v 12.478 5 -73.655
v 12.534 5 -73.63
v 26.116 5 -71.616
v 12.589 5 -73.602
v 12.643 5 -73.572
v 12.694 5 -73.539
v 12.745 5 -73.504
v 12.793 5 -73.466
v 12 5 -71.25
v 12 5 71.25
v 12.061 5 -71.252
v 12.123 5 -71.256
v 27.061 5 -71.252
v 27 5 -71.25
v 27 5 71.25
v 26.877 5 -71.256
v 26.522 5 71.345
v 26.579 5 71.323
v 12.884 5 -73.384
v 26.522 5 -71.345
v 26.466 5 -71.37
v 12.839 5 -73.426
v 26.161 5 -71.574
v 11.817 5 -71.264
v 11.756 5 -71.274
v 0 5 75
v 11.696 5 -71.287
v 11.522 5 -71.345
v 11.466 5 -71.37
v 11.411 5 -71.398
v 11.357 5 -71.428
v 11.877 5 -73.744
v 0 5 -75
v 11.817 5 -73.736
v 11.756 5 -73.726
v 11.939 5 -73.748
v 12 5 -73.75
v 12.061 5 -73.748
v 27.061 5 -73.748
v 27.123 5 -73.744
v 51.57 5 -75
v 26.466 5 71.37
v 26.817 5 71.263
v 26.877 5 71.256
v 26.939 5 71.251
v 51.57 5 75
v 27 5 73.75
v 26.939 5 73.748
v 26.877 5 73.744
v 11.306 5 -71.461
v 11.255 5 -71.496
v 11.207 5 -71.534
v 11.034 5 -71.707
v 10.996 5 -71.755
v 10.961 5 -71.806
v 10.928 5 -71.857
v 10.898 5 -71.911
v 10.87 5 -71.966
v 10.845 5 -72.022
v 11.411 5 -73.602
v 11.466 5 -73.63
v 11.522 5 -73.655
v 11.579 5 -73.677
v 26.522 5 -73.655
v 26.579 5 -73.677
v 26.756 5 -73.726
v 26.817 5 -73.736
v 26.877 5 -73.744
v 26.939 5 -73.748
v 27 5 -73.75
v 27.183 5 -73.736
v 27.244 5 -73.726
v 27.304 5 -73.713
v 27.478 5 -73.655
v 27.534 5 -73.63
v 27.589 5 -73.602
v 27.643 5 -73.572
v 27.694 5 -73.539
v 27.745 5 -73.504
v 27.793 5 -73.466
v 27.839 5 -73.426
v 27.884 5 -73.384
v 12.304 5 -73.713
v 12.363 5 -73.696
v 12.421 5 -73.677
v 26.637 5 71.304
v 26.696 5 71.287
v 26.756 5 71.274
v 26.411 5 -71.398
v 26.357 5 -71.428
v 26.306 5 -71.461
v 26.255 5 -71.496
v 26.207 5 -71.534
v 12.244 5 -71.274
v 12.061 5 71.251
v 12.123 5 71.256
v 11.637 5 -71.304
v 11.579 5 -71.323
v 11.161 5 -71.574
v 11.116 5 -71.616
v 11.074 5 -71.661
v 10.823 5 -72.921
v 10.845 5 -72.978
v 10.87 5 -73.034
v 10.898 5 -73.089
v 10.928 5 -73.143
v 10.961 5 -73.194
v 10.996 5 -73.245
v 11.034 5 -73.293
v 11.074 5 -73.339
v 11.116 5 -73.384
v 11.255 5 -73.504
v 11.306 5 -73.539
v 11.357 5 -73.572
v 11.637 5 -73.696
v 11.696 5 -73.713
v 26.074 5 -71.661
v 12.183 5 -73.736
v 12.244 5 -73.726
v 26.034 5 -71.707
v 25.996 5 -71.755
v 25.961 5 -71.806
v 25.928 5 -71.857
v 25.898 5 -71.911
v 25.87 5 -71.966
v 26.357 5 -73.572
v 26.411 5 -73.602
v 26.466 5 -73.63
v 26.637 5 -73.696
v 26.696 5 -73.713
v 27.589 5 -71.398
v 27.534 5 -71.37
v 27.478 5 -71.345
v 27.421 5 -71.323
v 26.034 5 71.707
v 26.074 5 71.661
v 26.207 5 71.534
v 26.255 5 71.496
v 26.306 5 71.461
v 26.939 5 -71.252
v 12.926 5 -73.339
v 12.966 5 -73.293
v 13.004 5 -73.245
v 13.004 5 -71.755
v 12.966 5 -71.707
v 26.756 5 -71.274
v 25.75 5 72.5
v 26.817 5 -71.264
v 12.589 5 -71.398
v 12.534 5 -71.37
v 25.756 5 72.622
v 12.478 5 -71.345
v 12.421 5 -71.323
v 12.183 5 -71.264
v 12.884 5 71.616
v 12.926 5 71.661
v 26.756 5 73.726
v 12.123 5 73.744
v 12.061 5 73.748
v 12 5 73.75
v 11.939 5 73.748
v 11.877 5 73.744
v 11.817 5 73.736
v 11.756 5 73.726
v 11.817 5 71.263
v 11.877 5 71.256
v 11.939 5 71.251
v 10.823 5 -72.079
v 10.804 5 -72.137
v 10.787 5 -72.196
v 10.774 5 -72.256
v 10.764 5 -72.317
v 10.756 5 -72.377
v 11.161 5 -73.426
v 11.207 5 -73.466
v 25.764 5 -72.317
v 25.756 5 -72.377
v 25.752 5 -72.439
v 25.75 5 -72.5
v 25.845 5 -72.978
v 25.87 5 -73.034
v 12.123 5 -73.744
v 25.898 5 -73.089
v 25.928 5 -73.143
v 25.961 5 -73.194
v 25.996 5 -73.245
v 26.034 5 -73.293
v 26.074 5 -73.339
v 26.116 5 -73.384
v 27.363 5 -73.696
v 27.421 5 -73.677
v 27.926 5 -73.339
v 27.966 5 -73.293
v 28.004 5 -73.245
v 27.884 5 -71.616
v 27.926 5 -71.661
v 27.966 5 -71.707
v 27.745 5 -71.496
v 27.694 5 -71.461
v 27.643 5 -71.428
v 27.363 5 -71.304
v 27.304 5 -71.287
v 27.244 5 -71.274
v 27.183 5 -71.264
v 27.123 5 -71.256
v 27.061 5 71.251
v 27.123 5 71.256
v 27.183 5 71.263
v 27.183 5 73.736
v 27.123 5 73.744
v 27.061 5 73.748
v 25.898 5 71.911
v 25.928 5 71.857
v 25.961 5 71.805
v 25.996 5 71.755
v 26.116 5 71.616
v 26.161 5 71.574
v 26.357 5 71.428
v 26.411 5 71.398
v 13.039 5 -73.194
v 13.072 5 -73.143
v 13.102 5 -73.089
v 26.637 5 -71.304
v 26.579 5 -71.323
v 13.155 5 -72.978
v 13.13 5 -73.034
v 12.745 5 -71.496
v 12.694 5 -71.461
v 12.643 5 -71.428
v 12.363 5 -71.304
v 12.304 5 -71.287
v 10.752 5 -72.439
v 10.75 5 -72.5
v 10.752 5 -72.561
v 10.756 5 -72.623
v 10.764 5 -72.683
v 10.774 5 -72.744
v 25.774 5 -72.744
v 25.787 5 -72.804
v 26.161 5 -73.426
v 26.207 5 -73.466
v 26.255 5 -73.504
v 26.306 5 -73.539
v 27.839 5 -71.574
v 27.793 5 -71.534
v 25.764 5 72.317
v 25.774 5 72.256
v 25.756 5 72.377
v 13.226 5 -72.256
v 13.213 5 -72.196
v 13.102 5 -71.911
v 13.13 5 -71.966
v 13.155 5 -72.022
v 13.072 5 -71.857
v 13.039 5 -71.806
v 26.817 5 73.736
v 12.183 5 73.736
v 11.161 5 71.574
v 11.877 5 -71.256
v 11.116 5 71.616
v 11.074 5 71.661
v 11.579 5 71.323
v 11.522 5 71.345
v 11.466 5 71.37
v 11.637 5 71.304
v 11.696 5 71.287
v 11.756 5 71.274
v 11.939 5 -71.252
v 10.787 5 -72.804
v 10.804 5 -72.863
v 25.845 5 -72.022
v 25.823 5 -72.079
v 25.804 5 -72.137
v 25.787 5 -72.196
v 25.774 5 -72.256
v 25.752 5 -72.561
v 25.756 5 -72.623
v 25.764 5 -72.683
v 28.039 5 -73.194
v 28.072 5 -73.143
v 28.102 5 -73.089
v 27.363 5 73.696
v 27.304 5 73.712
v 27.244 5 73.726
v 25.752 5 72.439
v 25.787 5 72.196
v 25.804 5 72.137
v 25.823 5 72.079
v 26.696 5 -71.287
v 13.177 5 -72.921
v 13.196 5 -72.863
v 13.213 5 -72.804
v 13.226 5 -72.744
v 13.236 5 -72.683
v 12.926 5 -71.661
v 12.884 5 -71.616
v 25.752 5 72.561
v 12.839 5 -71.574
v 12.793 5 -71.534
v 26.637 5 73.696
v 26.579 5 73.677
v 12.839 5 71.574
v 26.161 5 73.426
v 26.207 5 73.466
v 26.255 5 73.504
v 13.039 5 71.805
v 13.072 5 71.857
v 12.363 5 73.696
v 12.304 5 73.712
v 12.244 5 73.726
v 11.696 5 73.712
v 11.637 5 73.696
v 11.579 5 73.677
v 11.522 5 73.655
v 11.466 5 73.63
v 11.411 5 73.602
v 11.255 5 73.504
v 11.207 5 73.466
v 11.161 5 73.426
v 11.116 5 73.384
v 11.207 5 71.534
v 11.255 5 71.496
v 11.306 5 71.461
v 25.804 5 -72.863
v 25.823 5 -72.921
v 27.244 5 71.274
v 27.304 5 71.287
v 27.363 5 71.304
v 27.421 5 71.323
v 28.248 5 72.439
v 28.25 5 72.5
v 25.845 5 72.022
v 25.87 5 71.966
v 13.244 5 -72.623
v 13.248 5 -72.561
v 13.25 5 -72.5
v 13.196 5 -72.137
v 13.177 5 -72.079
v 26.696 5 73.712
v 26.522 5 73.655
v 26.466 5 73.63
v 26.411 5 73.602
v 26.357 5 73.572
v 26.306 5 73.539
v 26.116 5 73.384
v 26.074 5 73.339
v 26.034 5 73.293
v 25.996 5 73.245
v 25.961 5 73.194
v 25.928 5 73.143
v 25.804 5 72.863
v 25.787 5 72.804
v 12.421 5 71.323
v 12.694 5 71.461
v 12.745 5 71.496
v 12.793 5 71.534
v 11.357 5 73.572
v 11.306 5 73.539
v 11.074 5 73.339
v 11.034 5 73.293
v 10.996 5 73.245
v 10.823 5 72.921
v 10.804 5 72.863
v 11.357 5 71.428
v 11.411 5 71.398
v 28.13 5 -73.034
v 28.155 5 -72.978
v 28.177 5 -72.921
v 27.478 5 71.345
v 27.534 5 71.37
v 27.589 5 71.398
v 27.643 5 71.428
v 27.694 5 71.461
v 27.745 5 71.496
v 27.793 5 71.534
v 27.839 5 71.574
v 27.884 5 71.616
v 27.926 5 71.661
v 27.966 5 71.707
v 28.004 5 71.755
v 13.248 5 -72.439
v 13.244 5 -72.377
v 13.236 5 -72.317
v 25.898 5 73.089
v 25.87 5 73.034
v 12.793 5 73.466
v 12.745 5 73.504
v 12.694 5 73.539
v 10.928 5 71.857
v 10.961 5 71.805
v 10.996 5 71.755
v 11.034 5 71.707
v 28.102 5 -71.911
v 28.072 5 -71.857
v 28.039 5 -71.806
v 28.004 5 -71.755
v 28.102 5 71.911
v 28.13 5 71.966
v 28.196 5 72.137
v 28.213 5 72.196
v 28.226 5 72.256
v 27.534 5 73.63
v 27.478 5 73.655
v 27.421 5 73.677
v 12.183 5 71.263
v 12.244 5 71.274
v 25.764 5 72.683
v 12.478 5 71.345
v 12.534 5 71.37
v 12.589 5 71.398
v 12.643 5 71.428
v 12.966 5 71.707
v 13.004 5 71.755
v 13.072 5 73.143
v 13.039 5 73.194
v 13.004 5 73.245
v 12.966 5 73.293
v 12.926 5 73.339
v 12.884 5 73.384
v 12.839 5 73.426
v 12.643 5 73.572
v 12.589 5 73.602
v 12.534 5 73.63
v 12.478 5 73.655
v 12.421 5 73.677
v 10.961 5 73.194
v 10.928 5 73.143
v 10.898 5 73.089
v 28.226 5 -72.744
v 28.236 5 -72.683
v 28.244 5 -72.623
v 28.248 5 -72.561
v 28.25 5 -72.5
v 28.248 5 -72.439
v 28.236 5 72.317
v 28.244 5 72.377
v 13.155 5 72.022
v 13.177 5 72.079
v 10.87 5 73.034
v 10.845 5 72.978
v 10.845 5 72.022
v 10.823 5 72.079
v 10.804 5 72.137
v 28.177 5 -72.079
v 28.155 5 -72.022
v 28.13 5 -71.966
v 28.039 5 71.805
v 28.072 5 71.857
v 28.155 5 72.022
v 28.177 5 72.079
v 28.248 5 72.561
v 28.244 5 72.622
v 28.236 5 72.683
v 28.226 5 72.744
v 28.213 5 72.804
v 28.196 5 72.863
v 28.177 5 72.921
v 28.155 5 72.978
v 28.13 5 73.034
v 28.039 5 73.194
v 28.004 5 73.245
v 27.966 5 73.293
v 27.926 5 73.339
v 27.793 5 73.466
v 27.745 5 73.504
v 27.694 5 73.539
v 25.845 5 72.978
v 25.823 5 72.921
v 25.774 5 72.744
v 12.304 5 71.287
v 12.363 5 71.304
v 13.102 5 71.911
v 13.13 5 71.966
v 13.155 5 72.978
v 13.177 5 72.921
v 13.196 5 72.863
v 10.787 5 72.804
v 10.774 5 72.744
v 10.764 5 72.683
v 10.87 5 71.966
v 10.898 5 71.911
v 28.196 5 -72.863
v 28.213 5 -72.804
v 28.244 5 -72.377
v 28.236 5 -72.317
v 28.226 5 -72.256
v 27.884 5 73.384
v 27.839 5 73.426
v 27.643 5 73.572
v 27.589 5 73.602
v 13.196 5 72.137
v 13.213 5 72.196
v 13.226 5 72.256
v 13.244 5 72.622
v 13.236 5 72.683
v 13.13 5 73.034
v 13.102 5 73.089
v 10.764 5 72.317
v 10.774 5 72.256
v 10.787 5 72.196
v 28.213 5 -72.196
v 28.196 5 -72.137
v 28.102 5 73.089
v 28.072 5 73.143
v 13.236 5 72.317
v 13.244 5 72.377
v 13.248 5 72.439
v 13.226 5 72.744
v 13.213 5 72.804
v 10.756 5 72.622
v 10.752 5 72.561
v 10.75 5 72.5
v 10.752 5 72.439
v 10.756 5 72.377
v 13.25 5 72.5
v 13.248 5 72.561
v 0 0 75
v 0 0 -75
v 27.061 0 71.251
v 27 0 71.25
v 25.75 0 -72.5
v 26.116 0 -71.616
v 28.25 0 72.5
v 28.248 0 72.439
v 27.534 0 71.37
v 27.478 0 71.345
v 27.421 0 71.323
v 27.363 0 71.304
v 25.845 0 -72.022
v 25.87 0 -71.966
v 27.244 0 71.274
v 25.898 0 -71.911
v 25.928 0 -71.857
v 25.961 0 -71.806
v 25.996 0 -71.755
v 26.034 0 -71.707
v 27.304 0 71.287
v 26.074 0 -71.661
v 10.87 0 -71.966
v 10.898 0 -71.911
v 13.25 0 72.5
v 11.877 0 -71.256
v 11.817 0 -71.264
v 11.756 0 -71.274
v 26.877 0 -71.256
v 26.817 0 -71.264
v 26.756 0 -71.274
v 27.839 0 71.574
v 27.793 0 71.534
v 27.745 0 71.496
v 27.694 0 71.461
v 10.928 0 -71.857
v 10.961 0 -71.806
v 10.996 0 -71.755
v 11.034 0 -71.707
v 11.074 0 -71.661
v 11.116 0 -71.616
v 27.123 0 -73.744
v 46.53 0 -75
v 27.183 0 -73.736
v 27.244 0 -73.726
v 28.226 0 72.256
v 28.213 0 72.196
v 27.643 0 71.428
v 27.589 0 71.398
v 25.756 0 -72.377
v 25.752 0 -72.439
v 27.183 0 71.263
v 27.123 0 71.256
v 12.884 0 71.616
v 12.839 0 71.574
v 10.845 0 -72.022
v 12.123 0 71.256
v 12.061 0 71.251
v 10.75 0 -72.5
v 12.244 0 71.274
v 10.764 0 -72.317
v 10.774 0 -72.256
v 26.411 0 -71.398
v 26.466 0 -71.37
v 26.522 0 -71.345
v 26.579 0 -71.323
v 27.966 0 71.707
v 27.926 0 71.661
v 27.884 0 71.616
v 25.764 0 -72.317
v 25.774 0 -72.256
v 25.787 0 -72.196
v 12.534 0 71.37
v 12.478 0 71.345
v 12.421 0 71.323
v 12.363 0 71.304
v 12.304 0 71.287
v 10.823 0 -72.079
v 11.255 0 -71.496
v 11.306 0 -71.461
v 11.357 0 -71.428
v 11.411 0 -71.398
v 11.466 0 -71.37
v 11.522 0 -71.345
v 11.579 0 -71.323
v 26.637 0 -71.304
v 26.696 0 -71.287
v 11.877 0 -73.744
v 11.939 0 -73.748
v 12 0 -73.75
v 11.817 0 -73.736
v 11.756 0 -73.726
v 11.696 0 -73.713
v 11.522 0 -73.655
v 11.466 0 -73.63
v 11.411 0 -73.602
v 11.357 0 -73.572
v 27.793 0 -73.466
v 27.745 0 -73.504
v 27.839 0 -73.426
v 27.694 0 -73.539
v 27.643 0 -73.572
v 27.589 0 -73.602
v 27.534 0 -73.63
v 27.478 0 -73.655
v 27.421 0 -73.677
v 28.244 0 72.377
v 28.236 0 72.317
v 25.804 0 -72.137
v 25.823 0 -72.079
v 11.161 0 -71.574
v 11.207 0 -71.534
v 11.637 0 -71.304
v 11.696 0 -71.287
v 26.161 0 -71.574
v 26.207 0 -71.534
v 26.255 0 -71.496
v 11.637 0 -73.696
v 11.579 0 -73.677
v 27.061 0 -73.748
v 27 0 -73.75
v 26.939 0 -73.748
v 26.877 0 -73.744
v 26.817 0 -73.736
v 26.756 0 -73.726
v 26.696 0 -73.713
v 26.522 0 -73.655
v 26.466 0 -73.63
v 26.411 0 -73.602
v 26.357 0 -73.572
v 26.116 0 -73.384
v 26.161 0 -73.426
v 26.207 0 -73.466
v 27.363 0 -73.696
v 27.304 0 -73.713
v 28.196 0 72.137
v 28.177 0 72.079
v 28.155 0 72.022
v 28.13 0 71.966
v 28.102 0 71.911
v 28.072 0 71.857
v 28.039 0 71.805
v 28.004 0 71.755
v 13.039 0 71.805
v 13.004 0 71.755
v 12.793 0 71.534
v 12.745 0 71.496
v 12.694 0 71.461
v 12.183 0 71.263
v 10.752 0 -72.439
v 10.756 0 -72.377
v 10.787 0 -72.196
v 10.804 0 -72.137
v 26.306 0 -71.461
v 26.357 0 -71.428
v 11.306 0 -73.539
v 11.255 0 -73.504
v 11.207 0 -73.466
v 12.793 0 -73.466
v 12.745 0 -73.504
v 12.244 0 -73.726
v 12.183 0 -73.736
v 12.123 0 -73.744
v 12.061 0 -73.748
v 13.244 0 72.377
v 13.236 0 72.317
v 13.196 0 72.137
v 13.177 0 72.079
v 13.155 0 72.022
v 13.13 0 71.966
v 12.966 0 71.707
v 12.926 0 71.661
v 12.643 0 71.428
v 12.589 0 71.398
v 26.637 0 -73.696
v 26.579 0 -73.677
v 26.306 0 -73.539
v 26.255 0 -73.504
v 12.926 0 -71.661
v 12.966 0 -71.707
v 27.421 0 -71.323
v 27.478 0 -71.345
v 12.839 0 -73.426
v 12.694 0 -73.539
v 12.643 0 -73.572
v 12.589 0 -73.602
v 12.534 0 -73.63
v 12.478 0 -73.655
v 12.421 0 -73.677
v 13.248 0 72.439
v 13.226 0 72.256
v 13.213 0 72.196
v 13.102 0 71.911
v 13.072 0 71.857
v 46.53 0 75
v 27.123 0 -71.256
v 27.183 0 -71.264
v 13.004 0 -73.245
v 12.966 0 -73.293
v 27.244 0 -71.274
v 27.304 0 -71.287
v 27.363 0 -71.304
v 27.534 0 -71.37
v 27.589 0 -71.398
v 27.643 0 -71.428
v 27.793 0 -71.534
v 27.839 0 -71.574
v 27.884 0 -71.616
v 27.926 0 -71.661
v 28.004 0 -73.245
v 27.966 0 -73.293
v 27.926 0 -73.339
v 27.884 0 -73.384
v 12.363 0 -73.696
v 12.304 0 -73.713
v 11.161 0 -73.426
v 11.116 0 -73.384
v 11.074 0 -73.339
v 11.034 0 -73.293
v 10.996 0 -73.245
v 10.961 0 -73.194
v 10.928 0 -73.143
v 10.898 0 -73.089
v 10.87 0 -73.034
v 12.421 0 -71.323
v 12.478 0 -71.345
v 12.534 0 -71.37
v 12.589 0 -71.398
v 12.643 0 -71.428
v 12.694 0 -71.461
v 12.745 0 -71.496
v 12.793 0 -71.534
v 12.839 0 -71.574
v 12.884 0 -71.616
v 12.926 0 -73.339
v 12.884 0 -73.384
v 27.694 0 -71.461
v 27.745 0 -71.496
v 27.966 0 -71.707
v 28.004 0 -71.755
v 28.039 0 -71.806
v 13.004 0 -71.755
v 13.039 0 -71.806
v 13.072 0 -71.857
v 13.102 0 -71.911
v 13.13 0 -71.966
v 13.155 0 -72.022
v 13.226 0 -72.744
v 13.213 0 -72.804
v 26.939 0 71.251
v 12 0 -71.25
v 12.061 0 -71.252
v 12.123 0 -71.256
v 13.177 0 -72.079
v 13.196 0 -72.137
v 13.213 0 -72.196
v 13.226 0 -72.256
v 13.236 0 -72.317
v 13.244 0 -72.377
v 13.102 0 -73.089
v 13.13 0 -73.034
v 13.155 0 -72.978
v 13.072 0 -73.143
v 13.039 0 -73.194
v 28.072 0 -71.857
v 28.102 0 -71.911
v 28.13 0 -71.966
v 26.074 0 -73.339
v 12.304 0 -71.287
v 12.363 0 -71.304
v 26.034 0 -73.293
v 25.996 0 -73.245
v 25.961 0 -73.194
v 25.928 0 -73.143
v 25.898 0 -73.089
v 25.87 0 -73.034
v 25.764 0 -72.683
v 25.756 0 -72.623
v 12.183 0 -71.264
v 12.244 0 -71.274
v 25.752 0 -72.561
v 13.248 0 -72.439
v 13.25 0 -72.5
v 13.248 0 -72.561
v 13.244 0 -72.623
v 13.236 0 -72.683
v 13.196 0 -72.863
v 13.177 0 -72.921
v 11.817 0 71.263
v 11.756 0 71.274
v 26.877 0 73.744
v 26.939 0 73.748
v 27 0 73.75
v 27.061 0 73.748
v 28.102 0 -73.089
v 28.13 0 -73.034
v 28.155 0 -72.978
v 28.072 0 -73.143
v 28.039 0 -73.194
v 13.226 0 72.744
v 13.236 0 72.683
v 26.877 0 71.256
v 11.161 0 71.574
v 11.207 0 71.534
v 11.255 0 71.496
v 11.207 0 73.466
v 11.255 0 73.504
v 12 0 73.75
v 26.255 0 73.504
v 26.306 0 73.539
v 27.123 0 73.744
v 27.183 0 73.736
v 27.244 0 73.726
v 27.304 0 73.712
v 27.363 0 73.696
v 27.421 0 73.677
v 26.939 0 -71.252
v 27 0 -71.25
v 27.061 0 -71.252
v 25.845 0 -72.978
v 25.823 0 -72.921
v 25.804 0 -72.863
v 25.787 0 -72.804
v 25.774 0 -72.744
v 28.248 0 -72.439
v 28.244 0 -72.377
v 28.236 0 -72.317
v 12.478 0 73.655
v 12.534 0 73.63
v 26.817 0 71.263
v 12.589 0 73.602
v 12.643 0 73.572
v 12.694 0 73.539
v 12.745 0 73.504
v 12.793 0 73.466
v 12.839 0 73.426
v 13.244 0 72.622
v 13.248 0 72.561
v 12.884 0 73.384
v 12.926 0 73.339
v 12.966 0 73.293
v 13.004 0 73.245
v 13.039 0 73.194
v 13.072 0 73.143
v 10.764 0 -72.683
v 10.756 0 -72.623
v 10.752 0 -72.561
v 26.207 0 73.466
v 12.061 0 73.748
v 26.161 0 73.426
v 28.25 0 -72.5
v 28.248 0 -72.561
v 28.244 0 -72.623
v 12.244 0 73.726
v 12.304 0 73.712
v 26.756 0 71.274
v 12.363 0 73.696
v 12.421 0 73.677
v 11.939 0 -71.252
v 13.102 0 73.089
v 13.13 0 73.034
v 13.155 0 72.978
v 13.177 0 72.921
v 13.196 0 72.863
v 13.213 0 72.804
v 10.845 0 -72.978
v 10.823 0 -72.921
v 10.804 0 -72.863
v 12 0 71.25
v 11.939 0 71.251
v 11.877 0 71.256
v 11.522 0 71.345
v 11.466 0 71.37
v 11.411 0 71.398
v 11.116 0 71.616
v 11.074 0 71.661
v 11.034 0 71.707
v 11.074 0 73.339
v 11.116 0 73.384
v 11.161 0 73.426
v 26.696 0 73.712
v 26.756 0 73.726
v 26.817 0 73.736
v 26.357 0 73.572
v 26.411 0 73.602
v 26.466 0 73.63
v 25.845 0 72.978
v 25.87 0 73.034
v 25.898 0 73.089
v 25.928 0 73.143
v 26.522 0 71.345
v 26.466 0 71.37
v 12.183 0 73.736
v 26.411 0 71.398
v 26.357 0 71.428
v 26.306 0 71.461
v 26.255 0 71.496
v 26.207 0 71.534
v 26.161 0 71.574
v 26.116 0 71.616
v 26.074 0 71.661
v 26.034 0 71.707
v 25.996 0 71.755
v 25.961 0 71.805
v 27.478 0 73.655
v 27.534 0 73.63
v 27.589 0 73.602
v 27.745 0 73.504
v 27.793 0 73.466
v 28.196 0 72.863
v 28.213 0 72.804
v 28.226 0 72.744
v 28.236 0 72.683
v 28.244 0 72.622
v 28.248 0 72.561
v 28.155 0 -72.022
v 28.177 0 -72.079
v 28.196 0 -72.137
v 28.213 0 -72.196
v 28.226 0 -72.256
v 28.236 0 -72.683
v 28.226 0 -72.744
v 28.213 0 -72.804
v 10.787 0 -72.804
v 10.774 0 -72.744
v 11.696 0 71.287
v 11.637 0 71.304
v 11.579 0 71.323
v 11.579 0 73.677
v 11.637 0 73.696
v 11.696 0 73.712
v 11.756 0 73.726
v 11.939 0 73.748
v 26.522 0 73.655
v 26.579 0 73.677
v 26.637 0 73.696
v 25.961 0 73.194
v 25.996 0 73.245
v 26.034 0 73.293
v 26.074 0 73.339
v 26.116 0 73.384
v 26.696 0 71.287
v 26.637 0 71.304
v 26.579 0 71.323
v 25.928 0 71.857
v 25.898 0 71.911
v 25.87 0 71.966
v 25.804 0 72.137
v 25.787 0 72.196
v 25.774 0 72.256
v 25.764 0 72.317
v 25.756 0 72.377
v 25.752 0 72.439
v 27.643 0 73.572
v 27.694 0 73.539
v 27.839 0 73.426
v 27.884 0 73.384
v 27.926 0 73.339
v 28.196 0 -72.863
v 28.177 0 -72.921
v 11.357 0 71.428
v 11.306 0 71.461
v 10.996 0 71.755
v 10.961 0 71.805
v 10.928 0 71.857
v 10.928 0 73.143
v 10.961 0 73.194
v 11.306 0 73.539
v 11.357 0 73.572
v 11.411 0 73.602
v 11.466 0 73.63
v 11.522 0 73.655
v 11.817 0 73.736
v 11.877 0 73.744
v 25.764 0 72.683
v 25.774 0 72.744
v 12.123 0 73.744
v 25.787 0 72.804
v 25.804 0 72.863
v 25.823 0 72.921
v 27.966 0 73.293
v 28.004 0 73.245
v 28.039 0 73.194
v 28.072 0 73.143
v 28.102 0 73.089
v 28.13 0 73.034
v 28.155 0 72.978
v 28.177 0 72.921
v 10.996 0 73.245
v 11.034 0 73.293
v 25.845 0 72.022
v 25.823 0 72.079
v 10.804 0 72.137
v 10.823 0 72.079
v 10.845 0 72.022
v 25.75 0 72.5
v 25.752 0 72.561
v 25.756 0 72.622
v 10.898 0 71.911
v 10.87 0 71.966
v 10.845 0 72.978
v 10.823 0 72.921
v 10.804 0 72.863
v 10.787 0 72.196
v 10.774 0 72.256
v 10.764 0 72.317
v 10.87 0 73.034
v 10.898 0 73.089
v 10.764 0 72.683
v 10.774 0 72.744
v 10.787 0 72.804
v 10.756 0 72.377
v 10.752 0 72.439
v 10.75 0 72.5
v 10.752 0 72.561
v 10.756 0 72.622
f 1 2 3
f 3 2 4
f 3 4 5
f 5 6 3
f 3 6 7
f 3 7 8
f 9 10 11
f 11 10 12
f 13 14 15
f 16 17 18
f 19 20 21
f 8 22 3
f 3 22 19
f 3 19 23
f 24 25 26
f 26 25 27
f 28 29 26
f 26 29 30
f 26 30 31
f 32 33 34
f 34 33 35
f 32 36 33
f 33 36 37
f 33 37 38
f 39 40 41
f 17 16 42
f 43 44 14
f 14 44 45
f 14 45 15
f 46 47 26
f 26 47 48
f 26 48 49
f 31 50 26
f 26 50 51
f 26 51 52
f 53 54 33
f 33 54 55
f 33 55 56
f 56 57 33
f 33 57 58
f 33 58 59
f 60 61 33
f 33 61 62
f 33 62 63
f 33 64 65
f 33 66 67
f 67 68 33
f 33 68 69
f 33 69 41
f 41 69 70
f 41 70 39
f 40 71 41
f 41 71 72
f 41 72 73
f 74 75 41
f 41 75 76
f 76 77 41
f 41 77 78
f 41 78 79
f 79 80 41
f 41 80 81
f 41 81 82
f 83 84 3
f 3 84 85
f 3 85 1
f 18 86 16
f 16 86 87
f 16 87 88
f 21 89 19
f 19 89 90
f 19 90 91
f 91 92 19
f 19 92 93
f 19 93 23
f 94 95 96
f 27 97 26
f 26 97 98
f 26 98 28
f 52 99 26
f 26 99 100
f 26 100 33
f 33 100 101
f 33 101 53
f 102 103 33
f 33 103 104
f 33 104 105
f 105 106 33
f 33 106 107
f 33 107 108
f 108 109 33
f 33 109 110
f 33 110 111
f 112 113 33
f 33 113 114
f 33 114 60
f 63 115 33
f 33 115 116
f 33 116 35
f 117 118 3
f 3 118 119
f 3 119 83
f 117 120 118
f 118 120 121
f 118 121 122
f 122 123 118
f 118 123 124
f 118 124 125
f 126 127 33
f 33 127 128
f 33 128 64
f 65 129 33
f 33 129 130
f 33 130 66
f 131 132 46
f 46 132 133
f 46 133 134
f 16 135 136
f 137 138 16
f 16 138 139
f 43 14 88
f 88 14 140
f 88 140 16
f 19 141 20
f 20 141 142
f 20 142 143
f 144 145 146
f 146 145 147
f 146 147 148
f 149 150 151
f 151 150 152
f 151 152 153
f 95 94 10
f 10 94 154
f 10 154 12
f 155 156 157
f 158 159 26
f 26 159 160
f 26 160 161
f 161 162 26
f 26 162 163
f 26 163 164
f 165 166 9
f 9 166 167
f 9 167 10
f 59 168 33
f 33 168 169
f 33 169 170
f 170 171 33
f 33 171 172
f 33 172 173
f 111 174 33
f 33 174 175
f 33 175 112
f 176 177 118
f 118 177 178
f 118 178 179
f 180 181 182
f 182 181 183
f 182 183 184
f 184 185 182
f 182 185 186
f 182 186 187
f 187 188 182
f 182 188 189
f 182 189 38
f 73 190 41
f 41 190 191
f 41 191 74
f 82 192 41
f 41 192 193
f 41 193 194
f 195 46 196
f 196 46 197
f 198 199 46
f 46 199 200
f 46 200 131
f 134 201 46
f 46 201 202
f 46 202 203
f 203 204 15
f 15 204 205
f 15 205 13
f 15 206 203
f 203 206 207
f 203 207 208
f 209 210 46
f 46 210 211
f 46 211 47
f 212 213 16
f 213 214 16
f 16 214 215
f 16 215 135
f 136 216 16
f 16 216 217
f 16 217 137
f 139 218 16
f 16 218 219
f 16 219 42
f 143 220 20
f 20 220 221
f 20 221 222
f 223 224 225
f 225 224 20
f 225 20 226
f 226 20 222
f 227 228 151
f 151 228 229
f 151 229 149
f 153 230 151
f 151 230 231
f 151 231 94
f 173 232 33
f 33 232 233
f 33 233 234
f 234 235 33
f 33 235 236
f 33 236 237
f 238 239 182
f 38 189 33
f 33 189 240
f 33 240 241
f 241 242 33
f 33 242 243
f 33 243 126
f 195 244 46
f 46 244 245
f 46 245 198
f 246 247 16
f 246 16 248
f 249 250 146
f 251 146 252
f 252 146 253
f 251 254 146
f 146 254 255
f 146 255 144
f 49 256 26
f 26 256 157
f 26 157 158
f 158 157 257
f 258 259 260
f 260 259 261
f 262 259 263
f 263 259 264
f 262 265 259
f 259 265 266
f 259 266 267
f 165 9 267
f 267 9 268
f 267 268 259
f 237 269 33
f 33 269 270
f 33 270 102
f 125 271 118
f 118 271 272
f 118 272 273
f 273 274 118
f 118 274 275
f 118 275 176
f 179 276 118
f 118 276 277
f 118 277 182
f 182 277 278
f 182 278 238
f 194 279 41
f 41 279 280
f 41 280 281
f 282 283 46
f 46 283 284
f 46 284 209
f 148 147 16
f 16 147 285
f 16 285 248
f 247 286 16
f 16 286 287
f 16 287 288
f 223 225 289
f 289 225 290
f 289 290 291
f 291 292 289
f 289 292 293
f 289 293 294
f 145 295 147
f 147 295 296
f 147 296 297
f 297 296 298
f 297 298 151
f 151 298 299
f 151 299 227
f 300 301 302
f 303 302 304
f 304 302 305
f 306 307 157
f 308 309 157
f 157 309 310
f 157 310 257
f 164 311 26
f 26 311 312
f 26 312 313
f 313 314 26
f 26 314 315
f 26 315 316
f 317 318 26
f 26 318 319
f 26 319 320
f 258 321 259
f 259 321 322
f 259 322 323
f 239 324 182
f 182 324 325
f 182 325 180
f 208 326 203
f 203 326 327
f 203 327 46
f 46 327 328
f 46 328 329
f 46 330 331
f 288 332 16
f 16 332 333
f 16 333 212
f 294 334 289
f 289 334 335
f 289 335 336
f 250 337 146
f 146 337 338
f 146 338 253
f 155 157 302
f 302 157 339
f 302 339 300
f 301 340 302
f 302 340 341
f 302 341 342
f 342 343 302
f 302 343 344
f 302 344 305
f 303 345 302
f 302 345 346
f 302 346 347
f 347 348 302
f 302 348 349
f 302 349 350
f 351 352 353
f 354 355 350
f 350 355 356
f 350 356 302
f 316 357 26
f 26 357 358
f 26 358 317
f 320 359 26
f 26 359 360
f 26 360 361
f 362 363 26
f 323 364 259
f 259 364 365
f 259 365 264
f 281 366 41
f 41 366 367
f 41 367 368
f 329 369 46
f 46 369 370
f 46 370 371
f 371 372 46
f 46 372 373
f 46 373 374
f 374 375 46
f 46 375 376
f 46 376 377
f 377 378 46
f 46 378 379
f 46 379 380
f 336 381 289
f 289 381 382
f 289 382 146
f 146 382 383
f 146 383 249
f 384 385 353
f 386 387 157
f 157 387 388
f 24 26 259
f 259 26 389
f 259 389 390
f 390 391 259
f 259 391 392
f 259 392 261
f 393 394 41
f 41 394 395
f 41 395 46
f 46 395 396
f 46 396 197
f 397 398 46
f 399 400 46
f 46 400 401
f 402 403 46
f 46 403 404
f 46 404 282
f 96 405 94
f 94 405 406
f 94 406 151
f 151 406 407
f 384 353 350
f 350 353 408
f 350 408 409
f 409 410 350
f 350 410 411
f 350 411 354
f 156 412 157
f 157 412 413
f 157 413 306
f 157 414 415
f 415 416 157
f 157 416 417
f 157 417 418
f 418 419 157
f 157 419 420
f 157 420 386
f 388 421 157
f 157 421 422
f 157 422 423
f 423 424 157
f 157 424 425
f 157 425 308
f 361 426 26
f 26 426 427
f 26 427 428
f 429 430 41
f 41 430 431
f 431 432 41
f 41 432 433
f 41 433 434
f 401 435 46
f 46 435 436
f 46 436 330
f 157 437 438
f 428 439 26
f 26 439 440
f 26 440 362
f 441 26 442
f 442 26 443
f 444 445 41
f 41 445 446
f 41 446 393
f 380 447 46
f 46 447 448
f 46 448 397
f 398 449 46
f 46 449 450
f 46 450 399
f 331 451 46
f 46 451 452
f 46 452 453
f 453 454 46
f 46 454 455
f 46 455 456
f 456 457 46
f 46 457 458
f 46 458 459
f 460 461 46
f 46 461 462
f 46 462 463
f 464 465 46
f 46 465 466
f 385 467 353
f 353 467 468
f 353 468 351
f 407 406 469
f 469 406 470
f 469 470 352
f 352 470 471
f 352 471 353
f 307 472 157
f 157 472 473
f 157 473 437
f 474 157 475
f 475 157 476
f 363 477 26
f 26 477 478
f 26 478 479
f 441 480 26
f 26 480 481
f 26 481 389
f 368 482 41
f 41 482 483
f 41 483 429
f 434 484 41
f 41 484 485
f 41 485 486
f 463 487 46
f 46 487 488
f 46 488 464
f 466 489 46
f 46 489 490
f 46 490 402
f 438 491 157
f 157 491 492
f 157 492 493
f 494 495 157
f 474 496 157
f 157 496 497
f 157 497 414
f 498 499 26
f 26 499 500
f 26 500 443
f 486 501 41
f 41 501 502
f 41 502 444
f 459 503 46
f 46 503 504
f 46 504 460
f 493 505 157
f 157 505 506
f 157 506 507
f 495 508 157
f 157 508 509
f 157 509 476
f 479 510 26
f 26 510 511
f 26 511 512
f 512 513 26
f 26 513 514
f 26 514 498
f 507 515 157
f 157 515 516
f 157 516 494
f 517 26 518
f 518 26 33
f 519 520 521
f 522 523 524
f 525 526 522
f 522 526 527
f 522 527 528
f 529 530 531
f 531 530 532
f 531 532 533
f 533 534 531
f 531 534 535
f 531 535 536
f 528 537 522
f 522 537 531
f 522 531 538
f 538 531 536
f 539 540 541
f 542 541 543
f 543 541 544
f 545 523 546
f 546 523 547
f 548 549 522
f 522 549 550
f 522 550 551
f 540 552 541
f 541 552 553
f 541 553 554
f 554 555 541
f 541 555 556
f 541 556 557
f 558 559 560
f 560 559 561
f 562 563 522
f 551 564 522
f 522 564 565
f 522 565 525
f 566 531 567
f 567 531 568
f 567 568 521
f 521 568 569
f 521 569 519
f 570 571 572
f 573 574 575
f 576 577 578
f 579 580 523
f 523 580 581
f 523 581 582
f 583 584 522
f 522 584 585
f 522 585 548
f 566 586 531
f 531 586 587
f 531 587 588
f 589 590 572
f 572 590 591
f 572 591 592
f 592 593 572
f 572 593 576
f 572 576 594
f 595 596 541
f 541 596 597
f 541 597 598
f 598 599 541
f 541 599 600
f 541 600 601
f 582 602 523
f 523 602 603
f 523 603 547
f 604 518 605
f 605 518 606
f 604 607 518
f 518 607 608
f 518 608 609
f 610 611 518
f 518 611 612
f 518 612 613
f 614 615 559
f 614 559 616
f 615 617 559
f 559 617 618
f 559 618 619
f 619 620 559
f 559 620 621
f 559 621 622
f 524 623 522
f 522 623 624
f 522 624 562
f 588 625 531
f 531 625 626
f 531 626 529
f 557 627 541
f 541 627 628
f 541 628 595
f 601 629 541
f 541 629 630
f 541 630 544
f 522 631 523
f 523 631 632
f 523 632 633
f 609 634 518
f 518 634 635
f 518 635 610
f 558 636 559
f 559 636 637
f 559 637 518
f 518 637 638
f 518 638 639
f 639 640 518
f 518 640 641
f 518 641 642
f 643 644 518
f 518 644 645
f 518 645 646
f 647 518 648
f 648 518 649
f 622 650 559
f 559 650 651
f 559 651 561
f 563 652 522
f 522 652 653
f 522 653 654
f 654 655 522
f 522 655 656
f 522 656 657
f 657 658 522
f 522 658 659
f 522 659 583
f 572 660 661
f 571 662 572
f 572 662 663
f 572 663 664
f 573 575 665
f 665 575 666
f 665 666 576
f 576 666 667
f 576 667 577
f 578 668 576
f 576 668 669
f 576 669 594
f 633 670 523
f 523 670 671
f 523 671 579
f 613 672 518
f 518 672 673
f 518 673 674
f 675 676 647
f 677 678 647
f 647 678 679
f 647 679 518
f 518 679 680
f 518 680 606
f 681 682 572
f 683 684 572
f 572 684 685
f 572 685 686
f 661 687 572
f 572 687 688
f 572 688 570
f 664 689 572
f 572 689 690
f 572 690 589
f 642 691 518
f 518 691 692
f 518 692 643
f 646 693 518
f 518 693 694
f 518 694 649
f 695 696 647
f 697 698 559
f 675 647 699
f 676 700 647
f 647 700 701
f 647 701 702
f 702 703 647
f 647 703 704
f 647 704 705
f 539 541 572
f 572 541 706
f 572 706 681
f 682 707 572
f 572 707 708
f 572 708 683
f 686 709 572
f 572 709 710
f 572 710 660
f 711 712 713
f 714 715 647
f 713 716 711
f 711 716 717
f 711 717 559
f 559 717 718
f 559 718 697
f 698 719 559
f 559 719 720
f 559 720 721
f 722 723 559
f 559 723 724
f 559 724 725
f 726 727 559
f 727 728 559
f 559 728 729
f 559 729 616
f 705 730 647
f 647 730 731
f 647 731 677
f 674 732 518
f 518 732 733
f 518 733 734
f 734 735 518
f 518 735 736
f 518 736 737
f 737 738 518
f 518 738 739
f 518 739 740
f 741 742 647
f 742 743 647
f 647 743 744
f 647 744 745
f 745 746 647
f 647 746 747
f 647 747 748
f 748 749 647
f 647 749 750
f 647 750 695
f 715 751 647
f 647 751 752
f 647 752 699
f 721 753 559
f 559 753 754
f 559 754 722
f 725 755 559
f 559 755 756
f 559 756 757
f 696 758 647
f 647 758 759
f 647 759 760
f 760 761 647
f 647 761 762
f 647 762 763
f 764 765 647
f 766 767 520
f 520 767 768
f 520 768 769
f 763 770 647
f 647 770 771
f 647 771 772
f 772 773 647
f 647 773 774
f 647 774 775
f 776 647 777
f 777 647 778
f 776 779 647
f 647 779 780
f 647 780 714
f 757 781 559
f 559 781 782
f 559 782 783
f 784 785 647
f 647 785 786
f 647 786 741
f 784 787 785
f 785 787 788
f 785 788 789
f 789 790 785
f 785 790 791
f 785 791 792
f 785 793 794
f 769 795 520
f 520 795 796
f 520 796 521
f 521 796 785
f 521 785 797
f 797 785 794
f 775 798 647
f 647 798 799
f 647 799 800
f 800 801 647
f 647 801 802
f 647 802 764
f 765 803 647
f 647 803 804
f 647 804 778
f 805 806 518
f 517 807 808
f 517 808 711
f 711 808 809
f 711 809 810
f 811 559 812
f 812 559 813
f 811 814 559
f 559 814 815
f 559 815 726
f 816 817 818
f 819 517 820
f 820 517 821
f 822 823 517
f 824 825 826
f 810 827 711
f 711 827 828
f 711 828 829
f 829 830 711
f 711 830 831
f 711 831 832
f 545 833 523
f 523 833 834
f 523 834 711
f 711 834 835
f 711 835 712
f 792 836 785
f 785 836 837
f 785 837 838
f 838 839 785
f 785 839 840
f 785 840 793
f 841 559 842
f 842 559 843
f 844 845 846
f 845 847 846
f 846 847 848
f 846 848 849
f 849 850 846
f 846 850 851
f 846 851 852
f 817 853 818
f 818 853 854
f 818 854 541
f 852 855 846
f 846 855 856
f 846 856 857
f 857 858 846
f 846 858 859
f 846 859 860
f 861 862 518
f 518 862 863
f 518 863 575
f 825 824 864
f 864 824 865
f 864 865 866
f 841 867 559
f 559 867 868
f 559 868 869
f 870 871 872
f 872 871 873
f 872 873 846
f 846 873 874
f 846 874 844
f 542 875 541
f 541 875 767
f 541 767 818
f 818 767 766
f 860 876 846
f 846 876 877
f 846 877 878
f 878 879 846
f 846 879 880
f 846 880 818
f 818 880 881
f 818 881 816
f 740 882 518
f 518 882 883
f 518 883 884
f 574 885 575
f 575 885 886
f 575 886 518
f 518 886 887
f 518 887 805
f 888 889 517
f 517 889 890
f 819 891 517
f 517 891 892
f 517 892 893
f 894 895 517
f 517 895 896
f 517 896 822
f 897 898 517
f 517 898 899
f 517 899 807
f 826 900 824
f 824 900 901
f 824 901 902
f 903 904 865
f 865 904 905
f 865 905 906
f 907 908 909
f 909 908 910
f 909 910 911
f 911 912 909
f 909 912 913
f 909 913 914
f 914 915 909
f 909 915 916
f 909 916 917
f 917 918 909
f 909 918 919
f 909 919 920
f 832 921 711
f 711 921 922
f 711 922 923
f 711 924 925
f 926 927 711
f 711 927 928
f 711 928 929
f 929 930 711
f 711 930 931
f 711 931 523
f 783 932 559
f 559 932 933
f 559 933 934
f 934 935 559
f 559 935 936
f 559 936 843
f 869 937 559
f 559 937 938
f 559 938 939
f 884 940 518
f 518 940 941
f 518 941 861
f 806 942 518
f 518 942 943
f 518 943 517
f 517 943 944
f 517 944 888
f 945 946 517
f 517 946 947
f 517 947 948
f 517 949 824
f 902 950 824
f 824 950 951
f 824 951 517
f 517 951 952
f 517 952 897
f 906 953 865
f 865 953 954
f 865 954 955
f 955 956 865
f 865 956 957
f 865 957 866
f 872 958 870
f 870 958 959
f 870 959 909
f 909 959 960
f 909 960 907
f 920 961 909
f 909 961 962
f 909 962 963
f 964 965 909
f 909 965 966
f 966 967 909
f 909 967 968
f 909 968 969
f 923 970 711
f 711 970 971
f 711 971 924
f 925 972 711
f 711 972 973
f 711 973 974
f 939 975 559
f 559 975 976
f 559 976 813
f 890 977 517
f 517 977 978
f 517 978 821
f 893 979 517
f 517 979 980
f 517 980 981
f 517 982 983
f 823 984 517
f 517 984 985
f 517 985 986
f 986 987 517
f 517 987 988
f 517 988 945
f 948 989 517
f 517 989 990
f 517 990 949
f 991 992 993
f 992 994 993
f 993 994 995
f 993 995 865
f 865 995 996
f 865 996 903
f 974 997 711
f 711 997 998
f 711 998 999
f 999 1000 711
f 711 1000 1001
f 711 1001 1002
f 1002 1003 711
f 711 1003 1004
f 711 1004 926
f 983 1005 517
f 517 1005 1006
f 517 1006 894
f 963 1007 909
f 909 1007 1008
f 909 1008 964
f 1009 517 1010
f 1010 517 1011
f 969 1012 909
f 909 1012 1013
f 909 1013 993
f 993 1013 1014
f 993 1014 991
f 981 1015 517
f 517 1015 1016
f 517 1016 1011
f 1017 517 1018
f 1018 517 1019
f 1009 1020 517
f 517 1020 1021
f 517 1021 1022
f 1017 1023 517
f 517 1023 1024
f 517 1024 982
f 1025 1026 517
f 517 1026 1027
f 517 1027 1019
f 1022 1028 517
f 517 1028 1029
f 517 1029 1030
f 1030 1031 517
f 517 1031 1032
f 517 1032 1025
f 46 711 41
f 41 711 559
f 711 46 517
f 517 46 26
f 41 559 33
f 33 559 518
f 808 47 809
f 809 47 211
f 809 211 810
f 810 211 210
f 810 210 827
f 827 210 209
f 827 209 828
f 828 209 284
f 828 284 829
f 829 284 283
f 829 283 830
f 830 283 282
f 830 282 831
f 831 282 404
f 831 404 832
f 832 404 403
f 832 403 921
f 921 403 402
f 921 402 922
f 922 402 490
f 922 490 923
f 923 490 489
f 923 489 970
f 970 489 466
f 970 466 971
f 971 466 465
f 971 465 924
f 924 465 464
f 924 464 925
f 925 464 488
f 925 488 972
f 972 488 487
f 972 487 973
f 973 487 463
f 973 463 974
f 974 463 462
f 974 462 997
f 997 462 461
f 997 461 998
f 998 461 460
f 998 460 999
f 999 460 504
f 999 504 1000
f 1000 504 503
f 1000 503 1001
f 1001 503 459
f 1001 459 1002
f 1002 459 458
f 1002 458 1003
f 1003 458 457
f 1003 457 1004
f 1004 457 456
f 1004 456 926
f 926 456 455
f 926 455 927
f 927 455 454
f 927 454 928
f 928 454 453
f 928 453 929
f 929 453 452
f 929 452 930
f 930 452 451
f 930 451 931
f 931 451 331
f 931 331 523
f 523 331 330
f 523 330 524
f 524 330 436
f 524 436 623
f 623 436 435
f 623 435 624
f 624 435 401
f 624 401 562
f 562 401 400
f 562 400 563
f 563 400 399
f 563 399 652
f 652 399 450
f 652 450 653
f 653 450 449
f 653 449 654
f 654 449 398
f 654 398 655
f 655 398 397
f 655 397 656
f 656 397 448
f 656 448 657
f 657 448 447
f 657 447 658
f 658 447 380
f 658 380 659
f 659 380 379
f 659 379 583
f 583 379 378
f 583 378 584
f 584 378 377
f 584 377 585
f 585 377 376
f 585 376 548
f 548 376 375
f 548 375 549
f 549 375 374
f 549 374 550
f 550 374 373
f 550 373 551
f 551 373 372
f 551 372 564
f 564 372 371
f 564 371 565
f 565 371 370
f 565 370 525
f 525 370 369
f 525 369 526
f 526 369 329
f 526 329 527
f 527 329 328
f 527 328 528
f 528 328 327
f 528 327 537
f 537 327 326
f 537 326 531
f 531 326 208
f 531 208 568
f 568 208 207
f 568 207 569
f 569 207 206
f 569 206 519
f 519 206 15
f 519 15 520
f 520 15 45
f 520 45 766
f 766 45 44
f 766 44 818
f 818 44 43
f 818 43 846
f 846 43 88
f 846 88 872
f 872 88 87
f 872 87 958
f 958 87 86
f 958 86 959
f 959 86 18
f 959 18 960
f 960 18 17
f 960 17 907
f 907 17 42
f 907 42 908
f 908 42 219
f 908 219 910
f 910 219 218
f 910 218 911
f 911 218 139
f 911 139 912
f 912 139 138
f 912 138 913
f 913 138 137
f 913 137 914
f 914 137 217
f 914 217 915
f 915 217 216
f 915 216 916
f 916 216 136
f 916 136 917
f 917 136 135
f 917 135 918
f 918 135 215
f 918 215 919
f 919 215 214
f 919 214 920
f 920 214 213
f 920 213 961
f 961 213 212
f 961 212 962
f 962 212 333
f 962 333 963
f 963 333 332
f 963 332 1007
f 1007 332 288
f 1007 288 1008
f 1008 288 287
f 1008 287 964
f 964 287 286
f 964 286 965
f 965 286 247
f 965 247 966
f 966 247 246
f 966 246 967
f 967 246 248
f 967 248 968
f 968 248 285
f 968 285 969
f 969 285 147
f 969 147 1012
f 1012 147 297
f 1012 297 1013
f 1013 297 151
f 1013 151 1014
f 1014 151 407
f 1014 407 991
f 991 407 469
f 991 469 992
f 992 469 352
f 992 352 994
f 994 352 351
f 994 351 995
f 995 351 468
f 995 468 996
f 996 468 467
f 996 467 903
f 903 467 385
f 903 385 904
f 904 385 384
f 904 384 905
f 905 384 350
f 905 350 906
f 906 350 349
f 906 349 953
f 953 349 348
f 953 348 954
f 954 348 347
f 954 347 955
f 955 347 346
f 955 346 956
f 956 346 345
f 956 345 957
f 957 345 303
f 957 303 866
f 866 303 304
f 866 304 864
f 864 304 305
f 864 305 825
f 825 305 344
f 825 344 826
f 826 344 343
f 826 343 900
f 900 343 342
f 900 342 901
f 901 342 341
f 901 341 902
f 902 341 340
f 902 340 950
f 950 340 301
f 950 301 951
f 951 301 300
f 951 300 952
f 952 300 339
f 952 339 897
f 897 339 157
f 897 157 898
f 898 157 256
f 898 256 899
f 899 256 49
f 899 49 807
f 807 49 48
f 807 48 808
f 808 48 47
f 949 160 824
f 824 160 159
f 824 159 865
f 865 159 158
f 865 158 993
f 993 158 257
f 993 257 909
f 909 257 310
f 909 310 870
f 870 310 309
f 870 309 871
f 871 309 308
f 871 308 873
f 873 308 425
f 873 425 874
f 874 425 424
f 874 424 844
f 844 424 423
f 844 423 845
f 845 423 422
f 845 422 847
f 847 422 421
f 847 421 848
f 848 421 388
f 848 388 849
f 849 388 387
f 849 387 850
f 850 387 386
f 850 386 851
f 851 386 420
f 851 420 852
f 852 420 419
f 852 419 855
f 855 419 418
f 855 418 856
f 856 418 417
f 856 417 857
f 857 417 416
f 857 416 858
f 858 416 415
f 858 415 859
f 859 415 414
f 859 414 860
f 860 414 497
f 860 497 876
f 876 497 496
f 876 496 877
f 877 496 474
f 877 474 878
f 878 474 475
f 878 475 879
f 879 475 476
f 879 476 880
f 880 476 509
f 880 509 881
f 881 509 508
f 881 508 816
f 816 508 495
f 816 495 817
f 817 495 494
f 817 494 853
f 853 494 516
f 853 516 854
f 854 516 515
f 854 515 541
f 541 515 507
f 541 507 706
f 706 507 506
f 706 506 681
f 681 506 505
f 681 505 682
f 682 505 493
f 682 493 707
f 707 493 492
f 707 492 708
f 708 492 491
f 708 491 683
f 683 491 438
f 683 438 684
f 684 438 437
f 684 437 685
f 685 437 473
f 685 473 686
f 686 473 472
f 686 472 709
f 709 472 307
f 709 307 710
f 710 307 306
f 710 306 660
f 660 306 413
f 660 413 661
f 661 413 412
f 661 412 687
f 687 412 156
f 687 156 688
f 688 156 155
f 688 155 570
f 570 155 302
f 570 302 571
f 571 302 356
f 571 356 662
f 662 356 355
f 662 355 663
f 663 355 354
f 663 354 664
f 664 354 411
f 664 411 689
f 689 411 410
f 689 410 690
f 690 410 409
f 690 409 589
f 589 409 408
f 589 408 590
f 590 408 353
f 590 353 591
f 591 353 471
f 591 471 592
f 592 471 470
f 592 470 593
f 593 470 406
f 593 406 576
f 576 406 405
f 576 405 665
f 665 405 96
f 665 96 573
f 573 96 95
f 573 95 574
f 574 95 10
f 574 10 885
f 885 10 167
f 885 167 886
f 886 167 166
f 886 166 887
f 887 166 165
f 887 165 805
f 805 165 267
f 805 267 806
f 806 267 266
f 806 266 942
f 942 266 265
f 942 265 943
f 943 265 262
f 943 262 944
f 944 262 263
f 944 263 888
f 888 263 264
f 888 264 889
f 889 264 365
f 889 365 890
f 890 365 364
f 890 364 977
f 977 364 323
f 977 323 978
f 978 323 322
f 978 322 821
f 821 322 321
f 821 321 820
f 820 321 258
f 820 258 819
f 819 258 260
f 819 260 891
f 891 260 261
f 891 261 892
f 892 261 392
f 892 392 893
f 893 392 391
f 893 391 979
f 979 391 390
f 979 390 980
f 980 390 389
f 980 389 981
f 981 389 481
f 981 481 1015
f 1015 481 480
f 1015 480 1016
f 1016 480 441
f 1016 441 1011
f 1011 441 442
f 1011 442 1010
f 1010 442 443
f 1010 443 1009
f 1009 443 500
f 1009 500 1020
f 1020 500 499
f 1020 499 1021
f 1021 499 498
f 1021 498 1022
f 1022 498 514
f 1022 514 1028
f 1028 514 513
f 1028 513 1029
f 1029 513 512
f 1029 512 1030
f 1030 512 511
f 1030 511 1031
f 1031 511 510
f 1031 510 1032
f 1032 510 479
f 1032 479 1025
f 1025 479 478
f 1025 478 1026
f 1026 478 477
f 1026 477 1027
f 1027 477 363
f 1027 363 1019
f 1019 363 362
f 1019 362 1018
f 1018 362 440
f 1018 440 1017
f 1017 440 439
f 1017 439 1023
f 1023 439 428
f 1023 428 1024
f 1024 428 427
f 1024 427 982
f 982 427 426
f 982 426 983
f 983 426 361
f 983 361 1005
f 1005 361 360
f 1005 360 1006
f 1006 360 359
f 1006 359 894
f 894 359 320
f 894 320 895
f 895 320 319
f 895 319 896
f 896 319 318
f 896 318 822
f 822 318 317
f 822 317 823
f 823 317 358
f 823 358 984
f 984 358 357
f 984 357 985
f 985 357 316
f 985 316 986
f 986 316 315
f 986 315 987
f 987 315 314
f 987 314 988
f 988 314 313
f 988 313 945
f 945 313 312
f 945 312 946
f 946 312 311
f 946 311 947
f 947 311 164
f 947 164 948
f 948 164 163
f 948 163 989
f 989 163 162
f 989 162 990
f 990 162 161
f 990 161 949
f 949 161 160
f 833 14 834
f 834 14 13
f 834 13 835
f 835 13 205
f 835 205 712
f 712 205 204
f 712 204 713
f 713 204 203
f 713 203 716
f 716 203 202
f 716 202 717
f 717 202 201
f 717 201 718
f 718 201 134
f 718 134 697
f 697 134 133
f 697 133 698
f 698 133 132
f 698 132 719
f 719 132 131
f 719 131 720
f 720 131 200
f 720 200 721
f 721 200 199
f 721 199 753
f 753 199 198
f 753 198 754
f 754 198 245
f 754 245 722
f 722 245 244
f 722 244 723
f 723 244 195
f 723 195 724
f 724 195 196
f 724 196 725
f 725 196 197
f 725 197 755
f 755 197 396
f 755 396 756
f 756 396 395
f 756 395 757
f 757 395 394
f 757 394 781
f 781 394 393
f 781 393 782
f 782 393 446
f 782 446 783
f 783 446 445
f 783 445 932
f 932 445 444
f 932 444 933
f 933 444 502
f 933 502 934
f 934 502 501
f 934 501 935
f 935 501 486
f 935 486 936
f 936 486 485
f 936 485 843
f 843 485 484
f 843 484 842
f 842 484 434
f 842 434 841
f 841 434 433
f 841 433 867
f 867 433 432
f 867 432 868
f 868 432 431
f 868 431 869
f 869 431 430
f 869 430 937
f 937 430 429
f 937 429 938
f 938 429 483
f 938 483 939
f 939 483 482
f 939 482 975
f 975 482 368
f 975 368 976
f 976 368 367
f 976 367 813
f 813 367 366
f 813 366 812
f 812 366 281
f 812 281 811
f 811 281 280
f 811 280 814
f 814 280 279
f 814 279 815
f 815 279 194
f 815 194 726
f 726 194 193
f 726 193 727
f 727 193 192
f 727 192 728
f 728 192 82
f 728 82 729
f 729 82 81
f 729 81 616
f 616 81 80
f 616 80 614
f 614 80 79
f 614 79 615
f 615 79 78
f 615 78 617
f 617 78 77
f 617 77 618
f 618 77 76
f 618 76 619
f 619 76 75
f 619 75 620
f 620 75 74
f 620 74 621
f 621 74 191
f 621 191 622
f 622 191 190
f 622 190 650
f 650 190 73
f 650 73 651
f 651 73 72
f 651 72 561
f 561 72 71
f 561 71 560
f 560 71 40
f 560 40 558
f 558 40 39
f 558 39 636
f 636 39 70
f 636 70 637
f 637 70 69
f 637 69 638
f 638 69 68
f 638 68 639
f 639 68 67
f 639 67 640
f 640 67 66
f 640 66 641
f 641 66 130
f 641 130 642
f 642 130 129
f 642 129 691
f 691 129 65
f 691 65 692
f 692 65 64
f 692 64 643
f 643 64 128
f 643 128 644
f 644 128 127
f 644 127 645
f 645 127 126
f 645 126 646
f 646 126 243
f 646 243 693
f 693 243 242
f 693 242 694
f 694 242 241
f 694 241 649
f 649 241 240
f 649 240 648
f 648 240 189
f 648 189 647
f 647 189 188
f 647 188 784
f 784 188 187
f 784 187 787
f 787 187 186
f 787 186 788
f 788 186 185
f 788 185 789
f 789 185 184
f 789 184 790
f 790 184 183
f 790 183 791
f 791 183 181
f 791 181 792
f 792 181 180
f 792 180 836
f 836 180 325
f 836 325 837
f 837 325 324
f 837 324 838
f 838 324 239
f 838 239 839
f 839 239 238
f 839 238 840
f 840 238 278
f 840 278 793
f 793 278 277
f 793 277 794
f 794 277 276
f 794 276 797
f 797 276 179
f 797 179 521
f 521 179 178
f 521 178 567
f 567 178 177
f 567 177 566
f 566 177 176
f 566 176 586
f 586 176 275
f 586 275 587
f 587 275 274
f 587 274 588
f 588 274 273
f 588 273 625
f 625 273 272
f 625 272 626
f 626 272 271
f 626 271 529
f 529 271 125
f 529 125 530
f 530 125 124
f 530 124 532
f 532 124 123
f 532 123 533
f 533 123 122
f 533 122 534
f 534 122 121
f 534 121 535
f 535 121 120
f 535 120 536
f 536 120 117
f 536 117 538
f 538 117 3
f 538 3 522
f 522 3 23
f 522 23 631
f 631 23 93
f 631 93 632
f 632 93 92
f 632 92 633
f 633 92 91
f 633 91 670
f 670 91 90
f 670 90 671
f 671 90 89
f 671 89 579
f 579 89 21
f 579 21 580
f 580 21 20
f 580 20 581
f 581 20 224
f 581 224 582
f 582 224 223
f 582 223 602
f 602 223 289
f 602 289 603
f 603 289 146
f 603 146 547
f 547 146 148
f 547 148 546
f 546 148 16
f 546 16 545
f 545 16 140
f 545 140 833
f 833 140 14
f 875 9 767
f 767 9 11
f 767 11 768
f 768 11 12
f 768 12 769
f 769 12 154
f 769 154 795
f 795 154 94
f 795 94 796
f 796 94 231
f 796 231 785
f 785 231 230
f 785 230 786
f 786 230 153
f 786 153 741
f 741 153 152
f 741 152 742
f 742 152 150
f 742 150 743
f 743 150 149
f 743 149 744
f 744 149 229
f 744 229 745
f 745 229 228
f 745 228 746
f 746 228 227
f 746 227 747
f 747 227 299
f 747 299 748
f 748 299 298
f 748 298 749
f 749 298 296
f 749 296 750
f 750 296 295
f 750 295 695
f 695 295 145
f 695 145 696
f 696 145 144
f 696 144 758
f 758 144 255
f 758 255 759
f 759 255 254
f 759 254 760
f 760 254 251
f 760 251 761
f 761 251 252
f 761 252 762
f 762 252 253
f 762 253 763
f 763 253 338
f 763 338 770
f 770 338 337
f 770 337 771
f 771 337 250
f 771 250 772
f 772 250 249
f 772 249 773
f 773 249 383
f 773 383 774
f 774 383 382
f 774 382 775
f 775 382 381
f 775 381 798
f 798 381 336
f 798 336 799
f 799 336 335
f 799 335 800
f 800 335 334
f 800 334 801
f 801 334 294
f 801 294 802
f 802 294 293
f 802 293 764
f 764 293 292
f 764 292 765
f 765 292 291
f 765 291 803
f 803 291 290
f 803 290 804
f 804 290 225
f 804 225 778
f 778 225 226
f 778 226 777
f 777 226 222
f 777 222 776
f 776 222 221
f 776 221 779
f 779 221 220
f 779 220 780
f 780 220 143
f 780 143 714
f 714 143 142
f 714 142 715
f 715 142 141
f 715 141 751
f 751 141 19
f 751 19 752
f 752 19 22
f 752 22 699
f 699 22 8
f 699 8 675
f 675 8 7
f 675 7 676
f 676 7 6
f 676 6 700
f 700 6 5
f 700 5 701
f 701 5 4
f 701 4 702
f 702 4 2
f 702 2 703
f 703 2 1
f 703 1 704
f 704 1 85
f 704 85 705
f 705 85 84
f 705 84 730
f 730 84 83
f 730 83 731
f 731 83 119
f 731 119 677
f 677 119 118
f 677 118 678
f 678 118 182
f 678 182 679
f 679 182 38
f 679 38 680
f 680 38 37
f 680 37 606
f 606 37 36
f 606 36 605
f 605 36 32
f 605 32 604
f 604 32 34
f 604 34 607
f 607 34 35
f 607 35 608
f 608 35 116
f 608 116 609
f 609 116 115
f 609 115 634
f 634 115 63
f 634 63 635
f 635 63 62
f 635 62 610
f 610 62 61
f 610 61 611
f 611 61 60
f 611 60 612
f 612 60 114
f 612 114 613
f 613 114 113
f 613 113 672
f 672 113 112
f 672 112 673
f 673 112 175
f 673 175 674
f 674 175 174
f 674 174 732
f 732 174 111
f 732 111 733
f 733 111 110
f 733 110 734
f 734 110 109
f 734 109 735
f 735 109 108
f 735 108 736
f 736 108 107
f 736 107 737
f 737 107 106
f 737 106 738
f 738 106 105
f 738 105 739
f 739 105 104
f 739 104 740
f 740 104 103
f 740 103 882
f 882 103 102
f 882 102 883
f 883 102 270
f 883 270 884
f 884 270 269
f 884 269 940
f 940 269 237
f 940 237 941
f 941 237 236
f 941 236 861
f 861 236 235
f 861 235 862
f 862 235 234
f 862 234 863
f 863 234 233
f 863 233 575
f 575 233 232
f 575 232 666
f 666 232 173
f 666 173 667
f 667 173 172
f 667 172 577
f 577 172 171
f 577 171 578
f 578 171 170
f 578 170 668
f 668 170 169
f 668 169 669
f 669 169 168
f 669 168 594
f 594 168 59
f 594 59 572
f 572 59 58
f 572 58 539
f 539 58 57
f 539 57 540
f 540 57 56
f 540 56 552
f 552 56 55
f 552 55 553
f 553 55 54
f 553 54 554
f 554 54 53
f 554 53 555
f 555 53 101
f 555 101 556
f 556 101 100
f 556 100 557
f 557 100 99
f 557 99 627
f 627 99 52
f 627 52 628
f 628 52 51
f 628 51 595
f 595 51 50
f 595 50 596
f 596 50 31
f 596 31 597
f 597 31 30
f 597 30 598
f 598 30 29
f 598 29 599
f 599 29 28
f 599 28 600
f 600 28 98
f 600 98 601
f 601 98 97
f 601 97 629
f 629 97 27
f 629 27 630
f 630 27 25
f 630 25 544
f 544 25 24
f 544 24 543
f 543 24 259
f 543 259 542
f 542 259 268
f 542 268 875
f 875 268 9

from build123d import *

# Parameters (mm, degrees)
BOSS_EXTRUDE1_DEPTH   = 75
M3X0_5_TAPPED_HOLE1_D = 2.5


with BuildPart() as part:
    # Sketch1 → Boss-Extrude1 (new body, symmetric)
    with BuildSketch(Plane.XY):
        Polygon((51.57, 5), (46.53, 0), (0, 0), (0, 5), align=None)
    extrude(amount=BOSS_EXTRUDE1_DEPTH, both=True)

    # M3x0.5 Tapped Hole1 (through all)
    with Locations(Plane(origin=(0, 5, 0), x_dir=(1, 0, 0), z_dir=(0, 1, 0))):
        with Locations((12, -72.5), (27, -72.5)):
            m3x0_5_tapped_hole1 = Hole(M3X0_5_TAPPED_HOLE1_D / 2)

    # Mirror1: M3x0.5 Tapped Hole1 across plane
    add(m3x0_5_tapped_hole1.mirror(Plane.XY), mode=Mode.SUBTRACT)


solid = part.part
